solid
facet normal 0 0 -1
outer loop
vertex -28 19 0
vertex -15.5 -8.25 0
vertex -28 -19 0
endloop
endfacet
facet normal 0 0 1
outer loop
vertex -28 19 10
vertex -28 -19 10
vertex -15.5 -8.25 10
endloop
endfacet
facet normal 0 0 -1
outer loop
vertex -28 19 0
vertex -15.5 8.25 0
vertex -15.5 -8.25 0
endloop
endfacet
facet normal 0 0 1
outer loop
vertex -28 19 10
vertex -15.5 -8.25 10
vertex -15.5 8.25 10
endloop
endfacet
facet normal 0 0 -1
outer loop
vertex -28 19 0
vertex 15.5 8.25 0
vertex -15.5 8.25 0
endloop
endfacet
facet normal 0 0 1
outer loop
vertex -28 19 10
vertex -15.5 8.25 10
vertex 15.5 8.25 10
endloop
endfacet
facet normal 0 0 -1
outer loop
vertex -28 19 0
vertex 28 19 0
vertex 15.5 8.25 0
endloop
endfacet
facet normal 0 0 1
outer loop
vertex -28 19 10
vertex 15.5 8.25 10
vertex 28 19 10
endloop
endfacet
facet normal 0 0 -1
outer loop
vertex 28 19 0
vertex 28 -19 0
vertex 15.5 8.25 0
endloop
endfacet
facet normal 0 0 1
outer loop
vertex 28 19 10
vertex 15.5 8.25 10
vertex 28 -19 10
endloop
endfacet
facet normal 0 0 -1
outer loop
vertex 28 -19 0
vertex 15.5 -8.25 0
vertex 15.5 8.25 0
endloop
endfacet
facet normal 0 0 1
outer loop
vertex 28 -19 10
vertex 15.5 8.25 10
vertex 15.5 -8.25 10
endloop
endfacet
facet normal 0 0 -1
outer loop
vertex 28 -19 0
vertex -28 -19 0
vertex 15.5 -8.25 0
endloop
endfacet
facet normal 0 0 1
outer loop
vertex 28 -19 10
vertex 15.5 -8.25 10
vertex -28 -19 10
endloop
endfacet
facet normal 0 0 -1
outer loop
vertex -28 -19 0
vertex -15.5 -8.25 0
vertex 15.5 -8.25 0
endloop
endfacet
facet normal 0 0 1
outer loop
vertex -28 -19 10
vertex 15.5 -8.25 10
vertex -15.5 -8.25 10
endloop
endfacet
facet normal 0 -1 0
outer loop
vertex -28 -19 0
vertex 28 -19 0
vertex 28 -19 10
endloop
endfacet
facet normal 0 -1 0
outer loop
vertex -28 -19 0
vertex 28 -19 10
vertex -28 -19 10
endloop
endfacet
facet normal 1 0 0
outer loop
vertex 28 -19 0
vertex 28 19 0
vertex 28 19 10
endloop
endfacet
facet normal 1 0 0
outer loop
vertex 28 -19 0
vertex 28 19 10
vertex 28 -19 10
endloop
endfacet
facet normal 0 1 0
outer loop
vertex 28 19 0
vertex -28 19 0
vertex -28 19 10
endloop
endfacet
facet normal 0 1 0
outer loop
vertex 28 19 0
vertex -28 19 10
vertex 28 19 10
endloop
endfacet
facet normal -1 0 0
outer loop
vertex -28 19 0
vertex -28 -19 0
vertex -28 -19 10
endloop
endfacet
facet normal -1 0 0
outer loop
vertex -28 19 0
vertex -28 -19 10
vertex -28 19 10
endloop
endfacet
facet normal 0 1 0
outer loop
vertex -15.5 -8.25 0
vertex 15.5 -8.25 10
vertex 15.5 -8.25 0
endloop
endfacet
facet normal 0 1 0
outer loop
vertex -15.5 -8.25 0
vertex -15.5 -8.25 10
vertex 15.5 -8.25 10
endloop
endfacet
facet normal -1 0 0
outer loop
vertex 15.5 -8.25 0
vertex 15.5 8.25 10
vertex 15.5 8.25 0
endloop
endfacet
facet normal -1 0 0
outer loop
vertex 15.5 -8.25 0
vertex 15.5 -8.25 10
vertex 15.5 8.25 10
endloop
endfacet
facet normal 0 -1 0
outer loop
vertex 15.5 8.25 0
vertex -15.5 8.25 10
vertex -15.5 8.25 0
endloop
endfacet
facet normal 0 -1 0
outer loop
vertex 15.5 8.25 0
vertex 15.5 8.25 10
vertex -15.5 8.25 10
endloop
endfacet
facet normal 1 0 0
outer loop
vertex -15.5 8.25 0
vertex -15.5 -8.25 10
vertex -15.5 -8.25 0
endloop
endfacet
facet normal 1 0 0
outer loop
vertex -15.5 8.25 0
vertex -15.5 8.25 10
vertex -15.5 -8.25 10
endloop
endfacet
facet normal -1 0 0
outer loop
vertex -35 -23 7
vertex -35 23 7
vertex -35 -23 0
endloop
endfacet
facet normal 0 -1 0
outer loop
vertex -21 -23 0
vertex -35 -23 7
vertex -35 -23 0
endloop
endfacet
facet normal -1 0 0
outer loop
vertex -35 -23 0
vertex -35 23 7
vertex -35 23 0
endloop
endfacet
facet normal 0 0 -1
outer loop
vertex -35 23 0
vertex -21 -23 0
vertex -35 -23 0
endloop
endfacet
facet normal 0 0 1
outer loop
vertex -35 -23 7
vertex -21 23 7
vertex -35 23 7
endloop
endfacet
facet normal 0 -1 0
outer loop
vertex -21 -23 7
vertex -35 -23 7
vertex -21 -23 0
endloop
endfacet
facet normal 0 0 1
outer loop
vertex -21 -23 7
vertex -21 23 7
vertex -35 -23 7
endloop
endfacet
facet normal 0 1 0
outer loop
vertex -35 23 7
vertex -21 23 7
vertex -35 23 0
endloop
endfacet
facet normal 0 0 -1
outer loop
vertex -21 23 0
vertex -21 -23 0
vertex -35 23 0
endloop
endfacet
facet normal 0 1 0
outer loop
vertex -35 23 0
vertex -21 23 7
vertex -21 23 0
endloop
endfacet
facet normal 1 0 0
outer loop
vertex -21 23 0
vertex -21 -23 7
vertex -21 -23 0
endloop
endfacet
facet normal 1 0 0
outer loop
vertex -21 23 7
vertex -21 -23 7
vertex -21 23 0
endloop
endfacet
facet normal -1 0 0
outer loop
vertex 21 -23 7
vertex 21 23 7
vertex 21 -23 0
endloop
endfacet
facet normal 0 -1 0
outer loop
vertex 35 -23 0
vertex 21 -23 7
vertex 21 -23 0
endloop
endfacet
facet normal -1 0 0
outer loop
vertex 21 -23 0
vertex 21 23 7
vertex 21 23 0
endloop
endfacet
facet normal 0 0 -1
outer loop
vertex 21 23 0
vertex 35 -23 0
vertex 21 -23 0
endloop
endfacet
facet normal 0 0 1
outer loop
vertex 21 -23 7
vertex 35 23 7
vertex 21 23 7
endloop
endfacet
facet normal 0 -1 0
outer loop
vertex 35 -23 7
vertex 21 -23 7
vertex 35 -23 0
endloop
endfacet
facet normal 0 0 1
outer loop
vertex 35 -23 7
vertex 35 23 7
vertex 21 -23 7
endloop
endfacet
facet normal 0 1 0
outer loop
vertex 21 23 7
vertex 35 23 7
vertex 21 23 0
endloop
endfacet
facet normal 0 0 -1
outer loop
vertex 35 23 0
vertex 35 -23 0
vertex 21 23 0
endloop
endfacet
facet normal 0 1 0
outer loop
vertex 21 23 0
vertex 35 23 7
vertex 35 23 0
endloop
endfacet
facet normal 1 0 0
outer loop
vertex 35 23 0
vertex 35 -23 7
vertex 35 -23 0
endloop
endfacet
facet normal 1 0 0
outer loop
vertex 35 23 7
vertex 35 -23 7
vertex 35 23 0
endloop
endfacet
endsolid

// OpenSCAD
polyhedron(points=[[-28.0, 19.0, 0.0], [-28.0, -19.0, 0.0], [-15.5, -8.25, 0.0], [-28.0, 19.0, 10.0], [-28.0, -19.0, 10.0], [-15.5, -8.25, 10.0], [-15.5, 8.25, 0.0], [-15.5, 8.25, 10.0], [15.5, 8.25, 0.0], [15.5, 8.25, 10.0], [28.0, 19.0, 0.0], [28.0, 19.0, 10.0], [28.0, -19.0, 0.0], [28.0, -19.0, 10.0], [15.5, -8.25, 0.0], [15.5, -8.25, 10.0], [-35.0, -23.0, 0.0], [-35.0, -23.0, 7.0], [-35.0, 23.0, 0.0], [-35.0, 23.0, 7.0], [-21.0, -23.0, 0.0], [-21.0, -23.0, 7.0], [-21.0, 23.0, 0.0], [-21.0, 23.0, 7.0], [21.0, -23.0, 0.0], [21.0, -23.0, 7.0], [21.0, 23.0, 0.0], [21.0, 23.0, 7.0], [35.0, -23.0, 0.0], [35.0, -23.0, 7.0], [35.0, 23.0, 0.0], [35.0, 23.0, 7.0]], faces=[[0, 2, 1], [3, 4, 5], [0, 6, 2], [3, 5, 7], [0, 8, 6], [3, 7, 9], [0, 10, 8], [3, 9, 11], [10, 12, 8], [11, 9, 13], [12, 14, 8], [13, 9, 15], [12, 1, 14], [13, 15, 4], [1, 2, 14], [4, 15, 5], [1, 12, 13], [1, 13, 4], [12, 10, 11], [12, 11, 13], [10, 0, 3], [10, 3, 11], [0, 1, 4], [0, 4, 3], [2, 15, 14], [2, 5, 15], [14, 9, 8], [14, 15, 9], [8, 7, 6], [8, 9, 7], [6, 5, 2], [6, 7, 5], [17, 19, 16], [20, 17, 16], [16, 19, 18], [18, 20, 16], [17, 23, 19], [21, 17, 20], [21, 23, 17], [19, 23, 18], [22, 20, 18], [18, 23, 22], [22, 21, 20], [23, 21, 22], [25, 27, 24], [28, 25, 24], [24, 27, 26], [26, 28, 24], [25, 31, 27], [29, 25, 28], [29, 31, 25], [27, 31, 26], [30, 28, 26], [26, 31, 30], [30, 29, 28], [31, 29, 30]], convexity=20);
